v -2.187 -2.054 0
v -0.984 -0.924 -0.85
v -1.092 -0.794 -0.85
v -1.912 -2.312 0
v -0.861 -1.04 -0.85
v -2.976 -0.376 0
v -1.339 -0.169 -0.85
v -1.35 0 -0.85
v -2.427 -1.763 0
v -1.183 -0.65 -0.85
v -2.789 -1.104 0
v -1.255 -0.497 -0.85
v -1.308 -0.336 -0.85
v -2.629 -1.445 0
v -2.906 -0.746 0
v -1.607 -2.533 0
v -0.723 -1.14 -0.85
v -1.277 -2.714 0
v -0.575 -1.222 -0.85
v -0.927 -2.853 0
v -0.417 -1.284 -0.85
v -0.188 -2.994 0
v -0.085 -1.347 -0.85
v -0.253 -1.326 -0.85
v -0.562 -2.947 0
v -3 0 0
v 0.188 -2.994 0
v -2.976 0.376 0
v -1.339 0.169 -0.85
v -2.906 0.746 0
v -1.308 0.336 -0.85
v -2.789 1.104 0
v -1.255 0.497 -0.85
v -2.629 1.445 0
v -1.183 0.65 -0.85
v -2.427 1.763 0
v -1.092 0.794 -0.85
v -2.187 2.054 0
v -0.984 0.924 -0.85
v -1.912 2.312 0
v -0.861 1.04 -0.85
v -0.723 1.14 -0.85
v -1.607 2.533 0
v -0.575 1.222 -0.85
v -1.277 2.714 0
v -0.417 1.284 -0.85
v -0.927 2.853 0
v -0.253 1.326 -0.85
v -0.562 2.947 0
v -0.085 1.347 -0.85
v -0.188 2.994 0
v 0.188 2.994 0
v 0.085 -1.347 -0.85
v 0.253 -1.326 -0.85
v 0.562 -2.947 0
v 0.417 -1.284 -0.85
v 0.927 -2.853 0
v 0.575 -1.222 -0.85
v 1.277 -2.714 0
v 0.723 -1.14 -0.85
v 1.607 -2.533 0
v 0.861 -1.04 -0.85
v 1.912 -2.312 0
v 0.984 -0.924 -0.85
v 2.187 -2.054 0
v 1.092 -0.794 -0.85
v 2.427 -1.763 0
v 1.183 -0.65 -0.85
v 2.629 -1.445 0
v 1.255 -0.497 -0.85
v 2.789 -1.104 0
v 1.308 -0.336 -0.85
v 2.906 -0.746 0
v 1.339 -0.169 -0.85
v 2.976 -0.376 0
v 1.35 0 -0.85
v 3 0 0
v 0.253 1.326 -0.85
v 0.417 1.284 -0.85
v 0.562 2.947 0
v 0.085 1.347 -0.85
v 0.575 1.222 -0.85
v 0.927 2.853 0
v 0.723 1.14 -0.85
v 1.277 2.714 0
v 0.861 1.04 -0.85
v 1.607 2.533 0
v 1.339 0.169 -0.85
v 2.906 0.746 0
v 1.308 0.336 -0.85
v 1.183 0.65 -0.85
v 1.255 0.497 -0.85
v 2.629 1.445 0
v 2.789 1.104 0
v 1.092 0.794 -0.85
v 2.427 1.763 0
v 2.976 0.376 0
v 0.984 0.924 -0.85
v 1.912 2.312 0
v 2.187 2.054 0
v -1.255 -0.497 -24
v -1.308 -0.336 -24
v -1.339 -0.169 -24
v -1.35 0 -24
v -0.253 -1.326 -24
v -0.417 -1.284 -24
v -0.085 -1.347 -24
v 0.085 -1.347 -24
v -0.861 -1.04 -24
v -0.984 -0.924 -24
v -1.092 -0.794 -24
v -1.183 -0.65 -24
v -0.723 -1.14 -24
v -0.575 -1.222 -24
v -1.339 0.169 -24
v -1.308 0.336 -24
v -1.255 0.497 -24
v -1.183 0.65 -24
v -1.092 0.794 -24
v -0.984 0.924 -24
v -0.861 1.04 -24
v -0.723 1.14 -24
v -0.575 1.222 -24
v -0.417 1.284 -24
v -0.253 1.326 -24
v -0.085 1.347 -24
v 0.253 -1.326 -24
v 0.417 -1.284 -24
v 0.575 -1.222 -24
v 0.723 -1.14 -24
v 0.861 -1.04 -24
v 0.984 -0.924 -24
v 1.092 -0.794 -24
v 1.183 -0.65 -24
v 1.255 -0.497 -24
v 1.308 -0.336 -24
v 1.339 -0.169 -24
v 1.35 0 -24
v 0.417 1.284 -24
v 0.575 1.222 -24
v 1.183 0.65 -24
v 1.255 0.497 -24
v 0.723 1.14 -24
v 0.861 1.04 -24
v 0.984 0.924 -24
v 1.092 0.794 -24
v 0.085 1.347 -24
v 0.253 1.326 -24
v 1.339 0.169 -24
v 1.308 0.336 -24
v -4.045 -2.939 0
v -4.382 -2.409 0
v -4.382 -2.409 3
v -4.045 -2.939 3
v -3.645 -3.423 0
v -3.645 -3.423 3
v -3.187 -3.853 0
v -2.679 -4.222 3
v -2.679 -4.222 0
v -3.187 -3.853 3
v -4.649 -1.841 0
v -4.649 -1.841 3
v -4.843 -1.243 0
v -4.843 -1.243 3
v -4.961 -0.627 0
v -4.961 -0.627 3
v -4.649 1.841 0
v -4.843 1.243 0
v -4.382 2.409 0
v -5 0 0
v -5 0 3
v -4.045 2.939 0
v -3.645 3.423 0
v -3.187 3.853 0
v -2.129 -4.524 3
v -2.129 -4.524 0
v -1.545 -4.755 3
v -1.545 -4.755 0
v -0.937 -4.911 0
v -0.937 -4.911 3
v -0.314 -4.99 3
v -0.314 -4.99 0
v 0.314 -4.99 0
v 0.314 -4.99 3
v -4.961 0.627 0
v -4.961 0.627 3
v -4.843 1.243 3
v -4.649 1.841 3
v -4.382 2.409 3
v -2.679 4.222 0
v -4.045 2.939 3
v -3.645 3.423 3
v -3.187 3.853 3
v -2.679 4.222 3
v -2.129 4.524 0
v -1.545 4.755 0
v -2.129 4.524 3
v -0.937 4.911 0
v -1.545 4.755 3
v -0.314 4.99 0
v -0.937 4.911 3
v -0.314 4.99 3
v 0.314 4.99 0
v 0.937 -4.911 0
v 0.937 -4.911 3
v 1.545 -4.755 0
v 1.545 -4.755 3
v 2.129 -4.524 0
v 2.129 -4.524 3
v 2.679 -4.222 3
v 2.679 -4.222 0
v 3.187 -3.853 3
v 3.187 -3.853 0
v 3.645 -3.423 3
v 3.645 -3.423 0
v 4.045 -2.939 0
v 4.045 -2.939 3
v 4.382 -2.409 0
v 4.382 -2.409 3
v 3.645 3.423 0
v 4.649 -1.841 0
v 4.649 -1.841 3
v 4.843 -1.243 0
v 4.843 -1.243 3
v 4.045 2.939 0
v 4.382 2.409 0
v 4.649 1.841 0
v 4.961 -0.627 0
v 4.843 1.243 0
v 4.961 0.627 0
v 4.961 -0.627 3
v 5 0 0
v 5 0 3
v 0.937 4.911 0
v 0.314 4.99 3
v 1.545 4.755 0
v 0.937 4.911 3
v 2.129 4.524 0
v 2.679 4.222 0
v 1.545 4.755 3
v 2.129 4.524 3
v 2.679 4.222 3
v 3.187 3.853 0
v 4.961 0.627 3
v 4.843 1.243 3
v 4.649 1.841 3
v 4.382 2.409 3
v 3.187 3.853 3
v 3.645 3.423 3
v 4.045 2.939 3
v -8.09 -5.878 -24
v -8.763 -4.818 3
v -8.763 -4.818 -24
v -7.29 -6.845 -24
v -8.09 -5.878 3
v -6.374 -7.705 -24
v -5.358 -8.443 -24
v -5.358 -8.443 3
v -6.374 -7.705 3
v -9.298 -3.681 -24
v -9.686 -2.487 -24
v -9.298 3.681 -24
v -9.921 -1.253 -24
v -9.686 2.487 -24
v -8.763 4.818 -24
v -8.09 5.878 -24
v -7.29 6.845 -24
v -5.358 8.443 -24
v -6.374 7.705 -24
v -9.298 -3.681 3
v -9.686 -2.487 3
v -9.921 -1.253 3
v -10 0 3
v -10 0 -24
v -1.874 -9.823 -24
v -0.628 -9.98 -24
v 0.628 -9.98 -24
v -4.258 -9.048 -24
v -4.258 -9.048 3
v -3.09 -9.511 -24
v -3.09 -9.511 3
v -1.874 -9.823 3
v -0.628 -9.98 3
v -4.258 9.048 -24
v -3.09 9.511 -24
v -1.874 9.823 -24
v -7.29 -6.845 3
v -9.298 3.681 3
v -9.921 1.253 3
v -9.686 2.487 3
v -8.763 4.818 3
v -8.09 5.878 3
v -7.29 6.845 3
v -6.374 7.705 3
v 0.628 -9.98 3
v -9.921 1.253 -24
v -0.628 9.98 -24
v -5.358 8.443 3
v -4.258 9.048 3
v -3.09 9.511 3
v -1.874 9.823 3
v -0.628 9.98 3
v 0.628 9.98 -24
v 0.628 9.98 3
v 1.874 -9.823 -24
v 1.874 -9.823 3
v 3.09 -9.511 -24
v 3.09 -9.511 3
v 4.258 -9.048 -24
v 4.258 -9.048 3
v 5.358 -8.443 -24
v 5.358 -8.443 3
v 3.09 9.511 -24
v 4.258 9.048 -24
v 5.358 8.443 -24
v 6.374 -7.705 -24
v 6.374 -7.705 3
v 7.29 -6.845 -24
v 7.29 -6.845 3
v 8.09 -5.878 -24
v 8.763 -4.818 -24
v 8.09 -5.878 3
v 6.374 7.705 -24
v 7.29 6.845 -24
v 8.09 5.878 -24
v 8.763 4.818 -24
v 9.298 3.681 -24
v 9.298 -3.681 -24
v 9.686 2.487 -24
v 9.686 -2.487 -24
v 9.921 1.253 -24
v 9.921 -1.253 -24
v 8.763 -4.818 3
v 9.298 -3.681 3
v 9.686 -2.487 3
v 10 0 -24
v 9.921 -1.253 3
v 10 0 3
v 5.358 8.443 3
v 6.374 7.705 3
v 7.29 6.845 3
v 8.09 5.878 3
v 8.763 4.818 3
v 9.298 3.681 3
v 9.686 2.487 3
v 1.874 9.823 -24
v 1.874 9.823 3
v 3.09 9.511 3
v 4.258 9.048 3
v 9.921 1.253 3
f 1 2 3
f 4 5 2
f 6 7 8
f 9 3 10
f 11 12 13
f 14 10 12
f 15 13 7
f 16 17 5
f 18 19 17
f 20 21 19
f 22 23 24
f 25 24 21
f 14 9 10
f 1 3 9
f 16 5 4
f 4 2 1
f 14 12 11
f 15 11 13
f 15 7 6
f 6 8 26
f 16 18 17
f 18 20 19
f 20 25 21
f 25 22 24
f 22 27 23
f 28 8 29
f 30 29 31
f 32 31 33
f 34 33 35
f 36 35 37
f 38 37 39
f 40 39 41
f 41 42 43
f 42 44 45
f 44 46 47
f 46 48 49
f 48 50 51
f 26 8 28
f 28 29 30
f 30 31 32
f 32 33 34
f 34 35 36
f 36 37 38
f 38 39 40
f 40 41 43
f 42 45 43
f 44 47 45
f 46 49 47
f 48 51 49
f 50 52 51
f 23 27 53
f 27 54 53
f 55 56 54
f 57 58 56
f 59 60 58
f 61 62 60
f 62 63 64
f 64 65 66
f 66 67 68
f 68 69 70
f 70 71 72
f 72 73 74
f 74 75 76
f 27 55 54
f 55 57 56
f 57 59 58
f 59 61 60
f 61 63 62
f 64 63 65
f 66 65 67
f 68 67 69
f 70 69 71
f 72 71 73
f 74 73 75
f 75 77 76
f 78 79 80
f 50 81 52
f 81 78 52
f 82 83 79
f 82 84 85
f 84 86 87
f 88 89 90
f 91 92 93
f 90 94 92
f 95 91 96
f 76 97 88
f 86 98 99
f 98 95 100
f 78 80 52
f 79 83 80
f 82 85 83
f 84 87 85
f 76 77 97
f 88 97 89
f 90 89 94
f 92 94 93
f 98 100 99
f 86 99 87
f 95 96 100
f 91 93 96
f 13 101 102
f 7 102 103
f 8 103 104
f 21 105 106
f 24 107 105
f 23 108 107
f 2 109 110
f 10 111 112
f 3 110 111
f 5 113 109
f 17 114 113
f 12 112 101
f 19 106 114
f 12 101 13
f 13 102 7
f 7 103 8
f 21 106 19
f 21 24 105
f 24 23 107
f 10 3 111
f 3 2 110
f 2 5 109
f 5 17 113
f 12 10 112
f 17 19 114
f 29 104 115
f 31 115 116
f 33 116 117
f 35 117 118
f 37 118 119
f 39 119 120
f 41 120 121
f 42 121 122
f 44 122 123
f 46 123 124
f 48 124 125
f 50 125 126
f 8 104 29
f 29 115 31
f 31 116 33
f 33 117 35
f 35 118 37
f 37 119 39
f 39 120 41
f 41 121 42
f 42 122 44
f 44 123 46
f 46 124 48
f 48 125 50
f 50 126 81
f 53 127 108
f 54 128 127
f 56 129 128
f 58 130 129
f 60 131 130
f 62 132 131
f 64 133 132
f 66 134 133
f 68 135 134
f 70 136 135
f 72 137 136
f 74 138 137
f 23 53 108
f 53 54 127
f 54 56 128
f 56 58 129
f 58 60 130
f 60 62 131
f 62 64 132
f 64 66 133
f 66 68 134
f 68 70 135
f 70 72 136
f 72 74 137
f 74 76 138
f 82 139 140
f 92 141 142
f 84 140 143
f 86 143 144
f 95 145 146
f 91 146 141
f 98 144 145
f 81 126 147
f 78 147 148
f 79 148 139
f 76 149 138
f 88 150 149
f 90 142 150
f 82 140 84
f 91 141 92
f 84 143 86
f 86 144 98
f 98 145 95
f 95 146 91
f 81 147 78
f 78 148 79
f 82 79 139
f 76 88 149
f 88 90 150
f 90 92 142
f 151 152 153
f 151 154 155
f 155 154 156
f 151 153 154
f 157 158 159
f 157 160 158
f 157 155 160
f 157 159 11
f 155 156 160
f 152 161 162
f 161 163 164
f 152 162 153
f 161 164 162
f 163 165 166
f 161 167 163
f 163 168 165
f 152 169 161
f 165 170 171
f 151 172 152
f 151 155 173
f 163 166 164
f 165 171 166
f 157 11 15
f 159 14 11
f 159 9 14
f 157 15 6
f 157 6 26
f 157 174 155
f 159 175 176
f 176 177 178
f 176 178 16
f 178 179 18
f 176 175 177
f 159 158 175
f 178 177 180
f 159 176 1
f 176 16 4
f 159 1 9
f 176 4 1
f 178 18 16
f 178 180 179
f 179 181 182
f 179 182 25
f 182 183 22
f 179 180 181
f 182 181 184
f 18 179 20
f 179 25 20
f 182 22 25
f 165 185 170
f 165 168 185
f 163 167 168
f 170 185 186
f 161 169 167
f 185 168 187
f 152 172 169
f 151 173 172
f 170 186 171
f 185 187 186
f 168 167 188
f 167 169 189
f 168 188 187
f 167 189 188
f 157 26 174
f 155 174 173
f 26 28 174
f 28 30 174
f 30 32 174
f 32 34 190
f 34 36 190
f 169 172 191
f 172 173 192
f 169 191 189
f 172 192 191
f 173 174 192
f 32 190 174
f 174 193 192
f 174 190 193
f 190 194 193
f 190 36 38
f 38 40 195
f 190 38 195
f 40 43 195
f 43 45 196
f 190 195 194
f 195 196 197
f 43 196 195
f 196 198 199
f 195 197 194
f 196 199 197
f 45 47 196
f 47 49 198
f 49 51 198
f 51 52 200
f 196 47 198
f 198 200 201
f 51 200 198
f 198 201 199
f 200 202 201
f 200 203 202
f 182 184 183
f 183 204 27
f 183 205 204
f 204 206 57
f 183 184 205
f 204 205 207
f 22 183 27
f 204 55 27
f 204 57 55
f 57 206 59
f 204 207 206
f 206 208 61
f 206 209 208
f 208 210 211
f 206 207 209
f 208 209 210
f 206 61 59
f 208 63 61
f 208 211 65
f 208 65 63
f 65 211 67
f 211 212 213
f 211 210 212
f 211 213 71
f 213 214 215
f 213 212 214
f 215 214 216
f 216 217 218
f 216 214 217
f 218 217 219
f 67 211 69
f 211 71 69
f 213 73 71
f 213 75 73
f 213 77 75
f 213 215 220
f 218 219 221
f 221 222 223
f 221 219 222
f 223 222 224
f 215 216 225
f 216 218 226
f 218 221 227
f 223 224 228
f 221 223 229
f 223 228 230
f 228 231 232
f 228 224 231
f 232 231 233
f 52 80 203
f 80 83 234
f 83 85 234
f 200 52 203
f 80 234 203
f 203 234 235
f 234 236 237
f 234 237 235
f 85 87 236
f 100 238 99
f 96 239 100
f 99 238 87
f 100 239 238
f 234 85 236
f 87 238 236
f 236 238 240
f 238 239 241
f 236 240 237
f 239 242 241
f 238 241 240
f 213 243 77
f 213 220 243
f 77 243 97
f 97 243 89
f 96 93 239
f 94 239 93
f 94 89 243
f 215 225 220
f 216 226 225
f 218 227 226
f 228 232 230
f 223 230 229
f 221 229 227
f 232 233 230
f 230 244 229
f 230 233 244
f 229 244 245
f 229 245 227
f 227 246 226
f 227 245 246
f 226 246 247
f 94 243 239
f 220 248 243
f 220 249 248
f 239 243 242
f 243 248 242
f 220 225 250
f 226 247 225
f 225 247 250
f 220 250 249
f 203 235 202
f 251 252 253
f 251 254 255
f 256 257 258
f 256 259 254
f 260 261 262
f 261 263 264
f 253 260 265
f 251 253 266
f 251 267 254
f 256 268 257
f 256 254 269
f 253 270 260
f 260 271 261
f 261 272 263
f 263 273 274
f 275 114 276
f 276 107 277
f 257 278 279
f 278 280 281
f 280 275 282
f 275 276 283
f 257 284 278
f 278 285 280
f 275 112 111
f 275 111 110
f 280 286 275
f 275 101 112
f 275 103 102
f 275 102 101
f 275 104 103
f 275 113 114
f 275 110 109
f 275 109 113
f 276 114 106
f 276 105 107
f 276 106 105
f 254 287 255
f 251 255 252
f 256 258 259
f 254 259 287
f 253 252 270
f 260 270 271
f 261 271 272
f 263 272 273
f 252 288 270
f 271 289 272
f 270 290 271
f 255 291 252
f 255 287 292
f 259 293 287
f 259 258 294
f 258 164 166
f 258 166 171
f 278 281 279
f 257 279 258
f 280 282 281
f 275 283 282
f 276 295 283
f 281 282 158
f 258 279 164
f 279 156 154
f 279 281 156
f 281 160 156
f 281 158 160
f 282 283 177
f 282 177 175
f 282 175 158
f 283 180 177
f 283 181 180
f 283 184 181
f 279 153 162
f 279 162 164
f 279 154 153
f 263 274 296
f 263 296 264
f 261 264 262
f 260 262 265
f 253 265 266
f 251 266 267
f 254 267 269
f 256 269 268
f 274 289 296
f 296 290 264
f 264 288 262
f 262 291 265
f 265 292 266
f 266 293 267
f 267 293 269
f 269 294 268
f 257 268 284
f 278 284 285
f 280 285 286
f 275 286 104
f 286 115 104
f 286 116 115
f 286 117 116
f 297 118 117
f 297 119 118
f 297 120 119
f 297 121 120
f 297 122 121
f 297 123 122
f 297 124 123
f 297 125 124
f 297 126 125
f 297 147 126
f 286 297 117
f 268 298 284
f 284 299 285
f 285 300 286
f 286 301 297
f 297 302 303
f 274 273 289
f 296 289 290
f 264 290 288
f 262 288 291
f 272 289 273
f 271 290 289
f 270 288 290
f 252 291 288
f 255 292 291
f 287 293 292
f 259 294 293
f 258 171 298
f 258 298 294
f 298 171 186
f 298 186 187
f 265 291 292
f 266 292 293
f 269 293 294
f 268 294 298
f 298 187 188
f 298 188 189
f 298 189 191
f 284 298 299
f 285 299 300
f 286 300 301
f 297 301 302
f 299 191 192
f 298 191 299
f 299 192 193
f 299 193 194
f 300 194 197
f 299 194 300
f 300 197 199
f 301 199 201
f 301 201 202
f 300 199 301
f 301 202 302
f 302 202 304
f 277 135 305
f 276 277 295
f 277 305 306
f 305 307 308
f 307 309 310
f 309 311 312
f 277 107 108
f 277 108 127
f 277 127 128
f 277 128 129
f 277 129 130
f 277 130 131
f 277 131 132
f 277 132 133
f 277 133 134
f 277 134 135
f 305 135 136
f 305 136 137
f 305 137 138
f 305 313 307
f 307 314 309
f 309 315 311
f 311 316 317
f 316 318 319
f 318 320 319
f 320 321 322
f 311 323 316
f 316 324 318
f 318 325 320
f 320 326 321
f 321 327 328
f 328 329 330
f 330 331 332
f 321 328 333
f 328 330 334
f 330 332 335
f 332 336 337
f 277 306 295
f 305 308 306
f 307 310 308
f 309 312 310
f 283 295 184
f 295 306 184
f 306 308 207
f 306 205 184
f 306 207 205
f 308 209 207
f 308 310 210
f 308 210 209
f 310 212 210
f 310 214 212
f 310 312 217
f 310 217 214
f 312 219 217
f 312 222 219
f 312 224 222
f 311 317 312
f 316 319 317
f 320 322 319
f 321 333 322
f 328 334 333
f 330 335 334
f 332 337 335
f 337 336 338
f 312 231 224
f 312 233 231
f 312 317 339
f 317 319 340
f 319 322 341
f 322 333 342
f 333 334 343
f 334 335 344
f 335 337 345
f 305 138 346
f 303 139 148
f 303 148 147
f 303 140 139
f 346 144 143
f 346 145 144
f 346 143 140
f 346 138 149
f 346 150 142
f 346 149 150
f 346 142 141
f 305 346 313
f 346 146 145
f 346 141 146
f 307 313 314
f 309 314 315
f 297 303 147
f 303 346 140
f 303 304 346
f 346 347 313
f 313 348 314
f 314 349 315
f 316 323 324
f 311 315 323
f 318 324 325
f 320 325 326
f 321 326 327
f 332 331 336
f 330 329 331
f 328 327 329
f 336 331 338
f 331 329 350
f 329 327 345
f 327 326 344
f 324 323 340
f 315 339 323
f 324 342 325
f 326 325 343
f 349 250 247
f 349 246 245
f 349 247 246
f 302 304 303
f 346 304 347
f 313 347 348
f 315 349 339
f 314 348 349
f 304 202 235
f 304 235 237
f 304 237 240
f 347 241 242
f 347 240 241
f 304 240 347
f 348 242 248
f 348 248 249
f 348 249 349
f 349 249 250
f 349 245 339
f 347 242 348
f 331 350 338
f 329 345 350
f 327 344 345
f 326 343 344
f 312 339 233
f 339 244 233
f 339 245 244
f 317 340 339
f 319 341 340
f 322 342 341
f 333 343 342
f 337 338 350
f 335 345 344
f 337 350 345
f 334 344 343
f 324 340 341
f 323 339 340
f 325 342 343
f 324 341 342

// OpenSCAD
$fn = 50;

difference() {
	union() {
		translate(v = [0, 0, -24.0]) {
			cylinder(h = 27, r = 10.0);
		}
	}
	union() {
		translate(v = [0, 0, 0]) {
			rotate(a = [0, 0, 0]) {
				difference() {
					union() {
						translate(v = [0, 0, -27.0]) {
							cylinder(h = 27, r = 1.0);
						}
						translate(v = [0, 0, -0.85]) {
							cylinder(h = 0.85, r1 = 1.35, r2 = 3.0);
						}
						translate(v = [0, 0, -27.0]) {
							cylinder(h = 27, r = 1.35);
						}
						translate(v = [0, 0, -27.0]) {
							cylinder(h = 27, r = 1.0);
						}
					}
					union();
				}
			}
		}
		#cylinder(h = 3, r = 5.0);
	}
}
